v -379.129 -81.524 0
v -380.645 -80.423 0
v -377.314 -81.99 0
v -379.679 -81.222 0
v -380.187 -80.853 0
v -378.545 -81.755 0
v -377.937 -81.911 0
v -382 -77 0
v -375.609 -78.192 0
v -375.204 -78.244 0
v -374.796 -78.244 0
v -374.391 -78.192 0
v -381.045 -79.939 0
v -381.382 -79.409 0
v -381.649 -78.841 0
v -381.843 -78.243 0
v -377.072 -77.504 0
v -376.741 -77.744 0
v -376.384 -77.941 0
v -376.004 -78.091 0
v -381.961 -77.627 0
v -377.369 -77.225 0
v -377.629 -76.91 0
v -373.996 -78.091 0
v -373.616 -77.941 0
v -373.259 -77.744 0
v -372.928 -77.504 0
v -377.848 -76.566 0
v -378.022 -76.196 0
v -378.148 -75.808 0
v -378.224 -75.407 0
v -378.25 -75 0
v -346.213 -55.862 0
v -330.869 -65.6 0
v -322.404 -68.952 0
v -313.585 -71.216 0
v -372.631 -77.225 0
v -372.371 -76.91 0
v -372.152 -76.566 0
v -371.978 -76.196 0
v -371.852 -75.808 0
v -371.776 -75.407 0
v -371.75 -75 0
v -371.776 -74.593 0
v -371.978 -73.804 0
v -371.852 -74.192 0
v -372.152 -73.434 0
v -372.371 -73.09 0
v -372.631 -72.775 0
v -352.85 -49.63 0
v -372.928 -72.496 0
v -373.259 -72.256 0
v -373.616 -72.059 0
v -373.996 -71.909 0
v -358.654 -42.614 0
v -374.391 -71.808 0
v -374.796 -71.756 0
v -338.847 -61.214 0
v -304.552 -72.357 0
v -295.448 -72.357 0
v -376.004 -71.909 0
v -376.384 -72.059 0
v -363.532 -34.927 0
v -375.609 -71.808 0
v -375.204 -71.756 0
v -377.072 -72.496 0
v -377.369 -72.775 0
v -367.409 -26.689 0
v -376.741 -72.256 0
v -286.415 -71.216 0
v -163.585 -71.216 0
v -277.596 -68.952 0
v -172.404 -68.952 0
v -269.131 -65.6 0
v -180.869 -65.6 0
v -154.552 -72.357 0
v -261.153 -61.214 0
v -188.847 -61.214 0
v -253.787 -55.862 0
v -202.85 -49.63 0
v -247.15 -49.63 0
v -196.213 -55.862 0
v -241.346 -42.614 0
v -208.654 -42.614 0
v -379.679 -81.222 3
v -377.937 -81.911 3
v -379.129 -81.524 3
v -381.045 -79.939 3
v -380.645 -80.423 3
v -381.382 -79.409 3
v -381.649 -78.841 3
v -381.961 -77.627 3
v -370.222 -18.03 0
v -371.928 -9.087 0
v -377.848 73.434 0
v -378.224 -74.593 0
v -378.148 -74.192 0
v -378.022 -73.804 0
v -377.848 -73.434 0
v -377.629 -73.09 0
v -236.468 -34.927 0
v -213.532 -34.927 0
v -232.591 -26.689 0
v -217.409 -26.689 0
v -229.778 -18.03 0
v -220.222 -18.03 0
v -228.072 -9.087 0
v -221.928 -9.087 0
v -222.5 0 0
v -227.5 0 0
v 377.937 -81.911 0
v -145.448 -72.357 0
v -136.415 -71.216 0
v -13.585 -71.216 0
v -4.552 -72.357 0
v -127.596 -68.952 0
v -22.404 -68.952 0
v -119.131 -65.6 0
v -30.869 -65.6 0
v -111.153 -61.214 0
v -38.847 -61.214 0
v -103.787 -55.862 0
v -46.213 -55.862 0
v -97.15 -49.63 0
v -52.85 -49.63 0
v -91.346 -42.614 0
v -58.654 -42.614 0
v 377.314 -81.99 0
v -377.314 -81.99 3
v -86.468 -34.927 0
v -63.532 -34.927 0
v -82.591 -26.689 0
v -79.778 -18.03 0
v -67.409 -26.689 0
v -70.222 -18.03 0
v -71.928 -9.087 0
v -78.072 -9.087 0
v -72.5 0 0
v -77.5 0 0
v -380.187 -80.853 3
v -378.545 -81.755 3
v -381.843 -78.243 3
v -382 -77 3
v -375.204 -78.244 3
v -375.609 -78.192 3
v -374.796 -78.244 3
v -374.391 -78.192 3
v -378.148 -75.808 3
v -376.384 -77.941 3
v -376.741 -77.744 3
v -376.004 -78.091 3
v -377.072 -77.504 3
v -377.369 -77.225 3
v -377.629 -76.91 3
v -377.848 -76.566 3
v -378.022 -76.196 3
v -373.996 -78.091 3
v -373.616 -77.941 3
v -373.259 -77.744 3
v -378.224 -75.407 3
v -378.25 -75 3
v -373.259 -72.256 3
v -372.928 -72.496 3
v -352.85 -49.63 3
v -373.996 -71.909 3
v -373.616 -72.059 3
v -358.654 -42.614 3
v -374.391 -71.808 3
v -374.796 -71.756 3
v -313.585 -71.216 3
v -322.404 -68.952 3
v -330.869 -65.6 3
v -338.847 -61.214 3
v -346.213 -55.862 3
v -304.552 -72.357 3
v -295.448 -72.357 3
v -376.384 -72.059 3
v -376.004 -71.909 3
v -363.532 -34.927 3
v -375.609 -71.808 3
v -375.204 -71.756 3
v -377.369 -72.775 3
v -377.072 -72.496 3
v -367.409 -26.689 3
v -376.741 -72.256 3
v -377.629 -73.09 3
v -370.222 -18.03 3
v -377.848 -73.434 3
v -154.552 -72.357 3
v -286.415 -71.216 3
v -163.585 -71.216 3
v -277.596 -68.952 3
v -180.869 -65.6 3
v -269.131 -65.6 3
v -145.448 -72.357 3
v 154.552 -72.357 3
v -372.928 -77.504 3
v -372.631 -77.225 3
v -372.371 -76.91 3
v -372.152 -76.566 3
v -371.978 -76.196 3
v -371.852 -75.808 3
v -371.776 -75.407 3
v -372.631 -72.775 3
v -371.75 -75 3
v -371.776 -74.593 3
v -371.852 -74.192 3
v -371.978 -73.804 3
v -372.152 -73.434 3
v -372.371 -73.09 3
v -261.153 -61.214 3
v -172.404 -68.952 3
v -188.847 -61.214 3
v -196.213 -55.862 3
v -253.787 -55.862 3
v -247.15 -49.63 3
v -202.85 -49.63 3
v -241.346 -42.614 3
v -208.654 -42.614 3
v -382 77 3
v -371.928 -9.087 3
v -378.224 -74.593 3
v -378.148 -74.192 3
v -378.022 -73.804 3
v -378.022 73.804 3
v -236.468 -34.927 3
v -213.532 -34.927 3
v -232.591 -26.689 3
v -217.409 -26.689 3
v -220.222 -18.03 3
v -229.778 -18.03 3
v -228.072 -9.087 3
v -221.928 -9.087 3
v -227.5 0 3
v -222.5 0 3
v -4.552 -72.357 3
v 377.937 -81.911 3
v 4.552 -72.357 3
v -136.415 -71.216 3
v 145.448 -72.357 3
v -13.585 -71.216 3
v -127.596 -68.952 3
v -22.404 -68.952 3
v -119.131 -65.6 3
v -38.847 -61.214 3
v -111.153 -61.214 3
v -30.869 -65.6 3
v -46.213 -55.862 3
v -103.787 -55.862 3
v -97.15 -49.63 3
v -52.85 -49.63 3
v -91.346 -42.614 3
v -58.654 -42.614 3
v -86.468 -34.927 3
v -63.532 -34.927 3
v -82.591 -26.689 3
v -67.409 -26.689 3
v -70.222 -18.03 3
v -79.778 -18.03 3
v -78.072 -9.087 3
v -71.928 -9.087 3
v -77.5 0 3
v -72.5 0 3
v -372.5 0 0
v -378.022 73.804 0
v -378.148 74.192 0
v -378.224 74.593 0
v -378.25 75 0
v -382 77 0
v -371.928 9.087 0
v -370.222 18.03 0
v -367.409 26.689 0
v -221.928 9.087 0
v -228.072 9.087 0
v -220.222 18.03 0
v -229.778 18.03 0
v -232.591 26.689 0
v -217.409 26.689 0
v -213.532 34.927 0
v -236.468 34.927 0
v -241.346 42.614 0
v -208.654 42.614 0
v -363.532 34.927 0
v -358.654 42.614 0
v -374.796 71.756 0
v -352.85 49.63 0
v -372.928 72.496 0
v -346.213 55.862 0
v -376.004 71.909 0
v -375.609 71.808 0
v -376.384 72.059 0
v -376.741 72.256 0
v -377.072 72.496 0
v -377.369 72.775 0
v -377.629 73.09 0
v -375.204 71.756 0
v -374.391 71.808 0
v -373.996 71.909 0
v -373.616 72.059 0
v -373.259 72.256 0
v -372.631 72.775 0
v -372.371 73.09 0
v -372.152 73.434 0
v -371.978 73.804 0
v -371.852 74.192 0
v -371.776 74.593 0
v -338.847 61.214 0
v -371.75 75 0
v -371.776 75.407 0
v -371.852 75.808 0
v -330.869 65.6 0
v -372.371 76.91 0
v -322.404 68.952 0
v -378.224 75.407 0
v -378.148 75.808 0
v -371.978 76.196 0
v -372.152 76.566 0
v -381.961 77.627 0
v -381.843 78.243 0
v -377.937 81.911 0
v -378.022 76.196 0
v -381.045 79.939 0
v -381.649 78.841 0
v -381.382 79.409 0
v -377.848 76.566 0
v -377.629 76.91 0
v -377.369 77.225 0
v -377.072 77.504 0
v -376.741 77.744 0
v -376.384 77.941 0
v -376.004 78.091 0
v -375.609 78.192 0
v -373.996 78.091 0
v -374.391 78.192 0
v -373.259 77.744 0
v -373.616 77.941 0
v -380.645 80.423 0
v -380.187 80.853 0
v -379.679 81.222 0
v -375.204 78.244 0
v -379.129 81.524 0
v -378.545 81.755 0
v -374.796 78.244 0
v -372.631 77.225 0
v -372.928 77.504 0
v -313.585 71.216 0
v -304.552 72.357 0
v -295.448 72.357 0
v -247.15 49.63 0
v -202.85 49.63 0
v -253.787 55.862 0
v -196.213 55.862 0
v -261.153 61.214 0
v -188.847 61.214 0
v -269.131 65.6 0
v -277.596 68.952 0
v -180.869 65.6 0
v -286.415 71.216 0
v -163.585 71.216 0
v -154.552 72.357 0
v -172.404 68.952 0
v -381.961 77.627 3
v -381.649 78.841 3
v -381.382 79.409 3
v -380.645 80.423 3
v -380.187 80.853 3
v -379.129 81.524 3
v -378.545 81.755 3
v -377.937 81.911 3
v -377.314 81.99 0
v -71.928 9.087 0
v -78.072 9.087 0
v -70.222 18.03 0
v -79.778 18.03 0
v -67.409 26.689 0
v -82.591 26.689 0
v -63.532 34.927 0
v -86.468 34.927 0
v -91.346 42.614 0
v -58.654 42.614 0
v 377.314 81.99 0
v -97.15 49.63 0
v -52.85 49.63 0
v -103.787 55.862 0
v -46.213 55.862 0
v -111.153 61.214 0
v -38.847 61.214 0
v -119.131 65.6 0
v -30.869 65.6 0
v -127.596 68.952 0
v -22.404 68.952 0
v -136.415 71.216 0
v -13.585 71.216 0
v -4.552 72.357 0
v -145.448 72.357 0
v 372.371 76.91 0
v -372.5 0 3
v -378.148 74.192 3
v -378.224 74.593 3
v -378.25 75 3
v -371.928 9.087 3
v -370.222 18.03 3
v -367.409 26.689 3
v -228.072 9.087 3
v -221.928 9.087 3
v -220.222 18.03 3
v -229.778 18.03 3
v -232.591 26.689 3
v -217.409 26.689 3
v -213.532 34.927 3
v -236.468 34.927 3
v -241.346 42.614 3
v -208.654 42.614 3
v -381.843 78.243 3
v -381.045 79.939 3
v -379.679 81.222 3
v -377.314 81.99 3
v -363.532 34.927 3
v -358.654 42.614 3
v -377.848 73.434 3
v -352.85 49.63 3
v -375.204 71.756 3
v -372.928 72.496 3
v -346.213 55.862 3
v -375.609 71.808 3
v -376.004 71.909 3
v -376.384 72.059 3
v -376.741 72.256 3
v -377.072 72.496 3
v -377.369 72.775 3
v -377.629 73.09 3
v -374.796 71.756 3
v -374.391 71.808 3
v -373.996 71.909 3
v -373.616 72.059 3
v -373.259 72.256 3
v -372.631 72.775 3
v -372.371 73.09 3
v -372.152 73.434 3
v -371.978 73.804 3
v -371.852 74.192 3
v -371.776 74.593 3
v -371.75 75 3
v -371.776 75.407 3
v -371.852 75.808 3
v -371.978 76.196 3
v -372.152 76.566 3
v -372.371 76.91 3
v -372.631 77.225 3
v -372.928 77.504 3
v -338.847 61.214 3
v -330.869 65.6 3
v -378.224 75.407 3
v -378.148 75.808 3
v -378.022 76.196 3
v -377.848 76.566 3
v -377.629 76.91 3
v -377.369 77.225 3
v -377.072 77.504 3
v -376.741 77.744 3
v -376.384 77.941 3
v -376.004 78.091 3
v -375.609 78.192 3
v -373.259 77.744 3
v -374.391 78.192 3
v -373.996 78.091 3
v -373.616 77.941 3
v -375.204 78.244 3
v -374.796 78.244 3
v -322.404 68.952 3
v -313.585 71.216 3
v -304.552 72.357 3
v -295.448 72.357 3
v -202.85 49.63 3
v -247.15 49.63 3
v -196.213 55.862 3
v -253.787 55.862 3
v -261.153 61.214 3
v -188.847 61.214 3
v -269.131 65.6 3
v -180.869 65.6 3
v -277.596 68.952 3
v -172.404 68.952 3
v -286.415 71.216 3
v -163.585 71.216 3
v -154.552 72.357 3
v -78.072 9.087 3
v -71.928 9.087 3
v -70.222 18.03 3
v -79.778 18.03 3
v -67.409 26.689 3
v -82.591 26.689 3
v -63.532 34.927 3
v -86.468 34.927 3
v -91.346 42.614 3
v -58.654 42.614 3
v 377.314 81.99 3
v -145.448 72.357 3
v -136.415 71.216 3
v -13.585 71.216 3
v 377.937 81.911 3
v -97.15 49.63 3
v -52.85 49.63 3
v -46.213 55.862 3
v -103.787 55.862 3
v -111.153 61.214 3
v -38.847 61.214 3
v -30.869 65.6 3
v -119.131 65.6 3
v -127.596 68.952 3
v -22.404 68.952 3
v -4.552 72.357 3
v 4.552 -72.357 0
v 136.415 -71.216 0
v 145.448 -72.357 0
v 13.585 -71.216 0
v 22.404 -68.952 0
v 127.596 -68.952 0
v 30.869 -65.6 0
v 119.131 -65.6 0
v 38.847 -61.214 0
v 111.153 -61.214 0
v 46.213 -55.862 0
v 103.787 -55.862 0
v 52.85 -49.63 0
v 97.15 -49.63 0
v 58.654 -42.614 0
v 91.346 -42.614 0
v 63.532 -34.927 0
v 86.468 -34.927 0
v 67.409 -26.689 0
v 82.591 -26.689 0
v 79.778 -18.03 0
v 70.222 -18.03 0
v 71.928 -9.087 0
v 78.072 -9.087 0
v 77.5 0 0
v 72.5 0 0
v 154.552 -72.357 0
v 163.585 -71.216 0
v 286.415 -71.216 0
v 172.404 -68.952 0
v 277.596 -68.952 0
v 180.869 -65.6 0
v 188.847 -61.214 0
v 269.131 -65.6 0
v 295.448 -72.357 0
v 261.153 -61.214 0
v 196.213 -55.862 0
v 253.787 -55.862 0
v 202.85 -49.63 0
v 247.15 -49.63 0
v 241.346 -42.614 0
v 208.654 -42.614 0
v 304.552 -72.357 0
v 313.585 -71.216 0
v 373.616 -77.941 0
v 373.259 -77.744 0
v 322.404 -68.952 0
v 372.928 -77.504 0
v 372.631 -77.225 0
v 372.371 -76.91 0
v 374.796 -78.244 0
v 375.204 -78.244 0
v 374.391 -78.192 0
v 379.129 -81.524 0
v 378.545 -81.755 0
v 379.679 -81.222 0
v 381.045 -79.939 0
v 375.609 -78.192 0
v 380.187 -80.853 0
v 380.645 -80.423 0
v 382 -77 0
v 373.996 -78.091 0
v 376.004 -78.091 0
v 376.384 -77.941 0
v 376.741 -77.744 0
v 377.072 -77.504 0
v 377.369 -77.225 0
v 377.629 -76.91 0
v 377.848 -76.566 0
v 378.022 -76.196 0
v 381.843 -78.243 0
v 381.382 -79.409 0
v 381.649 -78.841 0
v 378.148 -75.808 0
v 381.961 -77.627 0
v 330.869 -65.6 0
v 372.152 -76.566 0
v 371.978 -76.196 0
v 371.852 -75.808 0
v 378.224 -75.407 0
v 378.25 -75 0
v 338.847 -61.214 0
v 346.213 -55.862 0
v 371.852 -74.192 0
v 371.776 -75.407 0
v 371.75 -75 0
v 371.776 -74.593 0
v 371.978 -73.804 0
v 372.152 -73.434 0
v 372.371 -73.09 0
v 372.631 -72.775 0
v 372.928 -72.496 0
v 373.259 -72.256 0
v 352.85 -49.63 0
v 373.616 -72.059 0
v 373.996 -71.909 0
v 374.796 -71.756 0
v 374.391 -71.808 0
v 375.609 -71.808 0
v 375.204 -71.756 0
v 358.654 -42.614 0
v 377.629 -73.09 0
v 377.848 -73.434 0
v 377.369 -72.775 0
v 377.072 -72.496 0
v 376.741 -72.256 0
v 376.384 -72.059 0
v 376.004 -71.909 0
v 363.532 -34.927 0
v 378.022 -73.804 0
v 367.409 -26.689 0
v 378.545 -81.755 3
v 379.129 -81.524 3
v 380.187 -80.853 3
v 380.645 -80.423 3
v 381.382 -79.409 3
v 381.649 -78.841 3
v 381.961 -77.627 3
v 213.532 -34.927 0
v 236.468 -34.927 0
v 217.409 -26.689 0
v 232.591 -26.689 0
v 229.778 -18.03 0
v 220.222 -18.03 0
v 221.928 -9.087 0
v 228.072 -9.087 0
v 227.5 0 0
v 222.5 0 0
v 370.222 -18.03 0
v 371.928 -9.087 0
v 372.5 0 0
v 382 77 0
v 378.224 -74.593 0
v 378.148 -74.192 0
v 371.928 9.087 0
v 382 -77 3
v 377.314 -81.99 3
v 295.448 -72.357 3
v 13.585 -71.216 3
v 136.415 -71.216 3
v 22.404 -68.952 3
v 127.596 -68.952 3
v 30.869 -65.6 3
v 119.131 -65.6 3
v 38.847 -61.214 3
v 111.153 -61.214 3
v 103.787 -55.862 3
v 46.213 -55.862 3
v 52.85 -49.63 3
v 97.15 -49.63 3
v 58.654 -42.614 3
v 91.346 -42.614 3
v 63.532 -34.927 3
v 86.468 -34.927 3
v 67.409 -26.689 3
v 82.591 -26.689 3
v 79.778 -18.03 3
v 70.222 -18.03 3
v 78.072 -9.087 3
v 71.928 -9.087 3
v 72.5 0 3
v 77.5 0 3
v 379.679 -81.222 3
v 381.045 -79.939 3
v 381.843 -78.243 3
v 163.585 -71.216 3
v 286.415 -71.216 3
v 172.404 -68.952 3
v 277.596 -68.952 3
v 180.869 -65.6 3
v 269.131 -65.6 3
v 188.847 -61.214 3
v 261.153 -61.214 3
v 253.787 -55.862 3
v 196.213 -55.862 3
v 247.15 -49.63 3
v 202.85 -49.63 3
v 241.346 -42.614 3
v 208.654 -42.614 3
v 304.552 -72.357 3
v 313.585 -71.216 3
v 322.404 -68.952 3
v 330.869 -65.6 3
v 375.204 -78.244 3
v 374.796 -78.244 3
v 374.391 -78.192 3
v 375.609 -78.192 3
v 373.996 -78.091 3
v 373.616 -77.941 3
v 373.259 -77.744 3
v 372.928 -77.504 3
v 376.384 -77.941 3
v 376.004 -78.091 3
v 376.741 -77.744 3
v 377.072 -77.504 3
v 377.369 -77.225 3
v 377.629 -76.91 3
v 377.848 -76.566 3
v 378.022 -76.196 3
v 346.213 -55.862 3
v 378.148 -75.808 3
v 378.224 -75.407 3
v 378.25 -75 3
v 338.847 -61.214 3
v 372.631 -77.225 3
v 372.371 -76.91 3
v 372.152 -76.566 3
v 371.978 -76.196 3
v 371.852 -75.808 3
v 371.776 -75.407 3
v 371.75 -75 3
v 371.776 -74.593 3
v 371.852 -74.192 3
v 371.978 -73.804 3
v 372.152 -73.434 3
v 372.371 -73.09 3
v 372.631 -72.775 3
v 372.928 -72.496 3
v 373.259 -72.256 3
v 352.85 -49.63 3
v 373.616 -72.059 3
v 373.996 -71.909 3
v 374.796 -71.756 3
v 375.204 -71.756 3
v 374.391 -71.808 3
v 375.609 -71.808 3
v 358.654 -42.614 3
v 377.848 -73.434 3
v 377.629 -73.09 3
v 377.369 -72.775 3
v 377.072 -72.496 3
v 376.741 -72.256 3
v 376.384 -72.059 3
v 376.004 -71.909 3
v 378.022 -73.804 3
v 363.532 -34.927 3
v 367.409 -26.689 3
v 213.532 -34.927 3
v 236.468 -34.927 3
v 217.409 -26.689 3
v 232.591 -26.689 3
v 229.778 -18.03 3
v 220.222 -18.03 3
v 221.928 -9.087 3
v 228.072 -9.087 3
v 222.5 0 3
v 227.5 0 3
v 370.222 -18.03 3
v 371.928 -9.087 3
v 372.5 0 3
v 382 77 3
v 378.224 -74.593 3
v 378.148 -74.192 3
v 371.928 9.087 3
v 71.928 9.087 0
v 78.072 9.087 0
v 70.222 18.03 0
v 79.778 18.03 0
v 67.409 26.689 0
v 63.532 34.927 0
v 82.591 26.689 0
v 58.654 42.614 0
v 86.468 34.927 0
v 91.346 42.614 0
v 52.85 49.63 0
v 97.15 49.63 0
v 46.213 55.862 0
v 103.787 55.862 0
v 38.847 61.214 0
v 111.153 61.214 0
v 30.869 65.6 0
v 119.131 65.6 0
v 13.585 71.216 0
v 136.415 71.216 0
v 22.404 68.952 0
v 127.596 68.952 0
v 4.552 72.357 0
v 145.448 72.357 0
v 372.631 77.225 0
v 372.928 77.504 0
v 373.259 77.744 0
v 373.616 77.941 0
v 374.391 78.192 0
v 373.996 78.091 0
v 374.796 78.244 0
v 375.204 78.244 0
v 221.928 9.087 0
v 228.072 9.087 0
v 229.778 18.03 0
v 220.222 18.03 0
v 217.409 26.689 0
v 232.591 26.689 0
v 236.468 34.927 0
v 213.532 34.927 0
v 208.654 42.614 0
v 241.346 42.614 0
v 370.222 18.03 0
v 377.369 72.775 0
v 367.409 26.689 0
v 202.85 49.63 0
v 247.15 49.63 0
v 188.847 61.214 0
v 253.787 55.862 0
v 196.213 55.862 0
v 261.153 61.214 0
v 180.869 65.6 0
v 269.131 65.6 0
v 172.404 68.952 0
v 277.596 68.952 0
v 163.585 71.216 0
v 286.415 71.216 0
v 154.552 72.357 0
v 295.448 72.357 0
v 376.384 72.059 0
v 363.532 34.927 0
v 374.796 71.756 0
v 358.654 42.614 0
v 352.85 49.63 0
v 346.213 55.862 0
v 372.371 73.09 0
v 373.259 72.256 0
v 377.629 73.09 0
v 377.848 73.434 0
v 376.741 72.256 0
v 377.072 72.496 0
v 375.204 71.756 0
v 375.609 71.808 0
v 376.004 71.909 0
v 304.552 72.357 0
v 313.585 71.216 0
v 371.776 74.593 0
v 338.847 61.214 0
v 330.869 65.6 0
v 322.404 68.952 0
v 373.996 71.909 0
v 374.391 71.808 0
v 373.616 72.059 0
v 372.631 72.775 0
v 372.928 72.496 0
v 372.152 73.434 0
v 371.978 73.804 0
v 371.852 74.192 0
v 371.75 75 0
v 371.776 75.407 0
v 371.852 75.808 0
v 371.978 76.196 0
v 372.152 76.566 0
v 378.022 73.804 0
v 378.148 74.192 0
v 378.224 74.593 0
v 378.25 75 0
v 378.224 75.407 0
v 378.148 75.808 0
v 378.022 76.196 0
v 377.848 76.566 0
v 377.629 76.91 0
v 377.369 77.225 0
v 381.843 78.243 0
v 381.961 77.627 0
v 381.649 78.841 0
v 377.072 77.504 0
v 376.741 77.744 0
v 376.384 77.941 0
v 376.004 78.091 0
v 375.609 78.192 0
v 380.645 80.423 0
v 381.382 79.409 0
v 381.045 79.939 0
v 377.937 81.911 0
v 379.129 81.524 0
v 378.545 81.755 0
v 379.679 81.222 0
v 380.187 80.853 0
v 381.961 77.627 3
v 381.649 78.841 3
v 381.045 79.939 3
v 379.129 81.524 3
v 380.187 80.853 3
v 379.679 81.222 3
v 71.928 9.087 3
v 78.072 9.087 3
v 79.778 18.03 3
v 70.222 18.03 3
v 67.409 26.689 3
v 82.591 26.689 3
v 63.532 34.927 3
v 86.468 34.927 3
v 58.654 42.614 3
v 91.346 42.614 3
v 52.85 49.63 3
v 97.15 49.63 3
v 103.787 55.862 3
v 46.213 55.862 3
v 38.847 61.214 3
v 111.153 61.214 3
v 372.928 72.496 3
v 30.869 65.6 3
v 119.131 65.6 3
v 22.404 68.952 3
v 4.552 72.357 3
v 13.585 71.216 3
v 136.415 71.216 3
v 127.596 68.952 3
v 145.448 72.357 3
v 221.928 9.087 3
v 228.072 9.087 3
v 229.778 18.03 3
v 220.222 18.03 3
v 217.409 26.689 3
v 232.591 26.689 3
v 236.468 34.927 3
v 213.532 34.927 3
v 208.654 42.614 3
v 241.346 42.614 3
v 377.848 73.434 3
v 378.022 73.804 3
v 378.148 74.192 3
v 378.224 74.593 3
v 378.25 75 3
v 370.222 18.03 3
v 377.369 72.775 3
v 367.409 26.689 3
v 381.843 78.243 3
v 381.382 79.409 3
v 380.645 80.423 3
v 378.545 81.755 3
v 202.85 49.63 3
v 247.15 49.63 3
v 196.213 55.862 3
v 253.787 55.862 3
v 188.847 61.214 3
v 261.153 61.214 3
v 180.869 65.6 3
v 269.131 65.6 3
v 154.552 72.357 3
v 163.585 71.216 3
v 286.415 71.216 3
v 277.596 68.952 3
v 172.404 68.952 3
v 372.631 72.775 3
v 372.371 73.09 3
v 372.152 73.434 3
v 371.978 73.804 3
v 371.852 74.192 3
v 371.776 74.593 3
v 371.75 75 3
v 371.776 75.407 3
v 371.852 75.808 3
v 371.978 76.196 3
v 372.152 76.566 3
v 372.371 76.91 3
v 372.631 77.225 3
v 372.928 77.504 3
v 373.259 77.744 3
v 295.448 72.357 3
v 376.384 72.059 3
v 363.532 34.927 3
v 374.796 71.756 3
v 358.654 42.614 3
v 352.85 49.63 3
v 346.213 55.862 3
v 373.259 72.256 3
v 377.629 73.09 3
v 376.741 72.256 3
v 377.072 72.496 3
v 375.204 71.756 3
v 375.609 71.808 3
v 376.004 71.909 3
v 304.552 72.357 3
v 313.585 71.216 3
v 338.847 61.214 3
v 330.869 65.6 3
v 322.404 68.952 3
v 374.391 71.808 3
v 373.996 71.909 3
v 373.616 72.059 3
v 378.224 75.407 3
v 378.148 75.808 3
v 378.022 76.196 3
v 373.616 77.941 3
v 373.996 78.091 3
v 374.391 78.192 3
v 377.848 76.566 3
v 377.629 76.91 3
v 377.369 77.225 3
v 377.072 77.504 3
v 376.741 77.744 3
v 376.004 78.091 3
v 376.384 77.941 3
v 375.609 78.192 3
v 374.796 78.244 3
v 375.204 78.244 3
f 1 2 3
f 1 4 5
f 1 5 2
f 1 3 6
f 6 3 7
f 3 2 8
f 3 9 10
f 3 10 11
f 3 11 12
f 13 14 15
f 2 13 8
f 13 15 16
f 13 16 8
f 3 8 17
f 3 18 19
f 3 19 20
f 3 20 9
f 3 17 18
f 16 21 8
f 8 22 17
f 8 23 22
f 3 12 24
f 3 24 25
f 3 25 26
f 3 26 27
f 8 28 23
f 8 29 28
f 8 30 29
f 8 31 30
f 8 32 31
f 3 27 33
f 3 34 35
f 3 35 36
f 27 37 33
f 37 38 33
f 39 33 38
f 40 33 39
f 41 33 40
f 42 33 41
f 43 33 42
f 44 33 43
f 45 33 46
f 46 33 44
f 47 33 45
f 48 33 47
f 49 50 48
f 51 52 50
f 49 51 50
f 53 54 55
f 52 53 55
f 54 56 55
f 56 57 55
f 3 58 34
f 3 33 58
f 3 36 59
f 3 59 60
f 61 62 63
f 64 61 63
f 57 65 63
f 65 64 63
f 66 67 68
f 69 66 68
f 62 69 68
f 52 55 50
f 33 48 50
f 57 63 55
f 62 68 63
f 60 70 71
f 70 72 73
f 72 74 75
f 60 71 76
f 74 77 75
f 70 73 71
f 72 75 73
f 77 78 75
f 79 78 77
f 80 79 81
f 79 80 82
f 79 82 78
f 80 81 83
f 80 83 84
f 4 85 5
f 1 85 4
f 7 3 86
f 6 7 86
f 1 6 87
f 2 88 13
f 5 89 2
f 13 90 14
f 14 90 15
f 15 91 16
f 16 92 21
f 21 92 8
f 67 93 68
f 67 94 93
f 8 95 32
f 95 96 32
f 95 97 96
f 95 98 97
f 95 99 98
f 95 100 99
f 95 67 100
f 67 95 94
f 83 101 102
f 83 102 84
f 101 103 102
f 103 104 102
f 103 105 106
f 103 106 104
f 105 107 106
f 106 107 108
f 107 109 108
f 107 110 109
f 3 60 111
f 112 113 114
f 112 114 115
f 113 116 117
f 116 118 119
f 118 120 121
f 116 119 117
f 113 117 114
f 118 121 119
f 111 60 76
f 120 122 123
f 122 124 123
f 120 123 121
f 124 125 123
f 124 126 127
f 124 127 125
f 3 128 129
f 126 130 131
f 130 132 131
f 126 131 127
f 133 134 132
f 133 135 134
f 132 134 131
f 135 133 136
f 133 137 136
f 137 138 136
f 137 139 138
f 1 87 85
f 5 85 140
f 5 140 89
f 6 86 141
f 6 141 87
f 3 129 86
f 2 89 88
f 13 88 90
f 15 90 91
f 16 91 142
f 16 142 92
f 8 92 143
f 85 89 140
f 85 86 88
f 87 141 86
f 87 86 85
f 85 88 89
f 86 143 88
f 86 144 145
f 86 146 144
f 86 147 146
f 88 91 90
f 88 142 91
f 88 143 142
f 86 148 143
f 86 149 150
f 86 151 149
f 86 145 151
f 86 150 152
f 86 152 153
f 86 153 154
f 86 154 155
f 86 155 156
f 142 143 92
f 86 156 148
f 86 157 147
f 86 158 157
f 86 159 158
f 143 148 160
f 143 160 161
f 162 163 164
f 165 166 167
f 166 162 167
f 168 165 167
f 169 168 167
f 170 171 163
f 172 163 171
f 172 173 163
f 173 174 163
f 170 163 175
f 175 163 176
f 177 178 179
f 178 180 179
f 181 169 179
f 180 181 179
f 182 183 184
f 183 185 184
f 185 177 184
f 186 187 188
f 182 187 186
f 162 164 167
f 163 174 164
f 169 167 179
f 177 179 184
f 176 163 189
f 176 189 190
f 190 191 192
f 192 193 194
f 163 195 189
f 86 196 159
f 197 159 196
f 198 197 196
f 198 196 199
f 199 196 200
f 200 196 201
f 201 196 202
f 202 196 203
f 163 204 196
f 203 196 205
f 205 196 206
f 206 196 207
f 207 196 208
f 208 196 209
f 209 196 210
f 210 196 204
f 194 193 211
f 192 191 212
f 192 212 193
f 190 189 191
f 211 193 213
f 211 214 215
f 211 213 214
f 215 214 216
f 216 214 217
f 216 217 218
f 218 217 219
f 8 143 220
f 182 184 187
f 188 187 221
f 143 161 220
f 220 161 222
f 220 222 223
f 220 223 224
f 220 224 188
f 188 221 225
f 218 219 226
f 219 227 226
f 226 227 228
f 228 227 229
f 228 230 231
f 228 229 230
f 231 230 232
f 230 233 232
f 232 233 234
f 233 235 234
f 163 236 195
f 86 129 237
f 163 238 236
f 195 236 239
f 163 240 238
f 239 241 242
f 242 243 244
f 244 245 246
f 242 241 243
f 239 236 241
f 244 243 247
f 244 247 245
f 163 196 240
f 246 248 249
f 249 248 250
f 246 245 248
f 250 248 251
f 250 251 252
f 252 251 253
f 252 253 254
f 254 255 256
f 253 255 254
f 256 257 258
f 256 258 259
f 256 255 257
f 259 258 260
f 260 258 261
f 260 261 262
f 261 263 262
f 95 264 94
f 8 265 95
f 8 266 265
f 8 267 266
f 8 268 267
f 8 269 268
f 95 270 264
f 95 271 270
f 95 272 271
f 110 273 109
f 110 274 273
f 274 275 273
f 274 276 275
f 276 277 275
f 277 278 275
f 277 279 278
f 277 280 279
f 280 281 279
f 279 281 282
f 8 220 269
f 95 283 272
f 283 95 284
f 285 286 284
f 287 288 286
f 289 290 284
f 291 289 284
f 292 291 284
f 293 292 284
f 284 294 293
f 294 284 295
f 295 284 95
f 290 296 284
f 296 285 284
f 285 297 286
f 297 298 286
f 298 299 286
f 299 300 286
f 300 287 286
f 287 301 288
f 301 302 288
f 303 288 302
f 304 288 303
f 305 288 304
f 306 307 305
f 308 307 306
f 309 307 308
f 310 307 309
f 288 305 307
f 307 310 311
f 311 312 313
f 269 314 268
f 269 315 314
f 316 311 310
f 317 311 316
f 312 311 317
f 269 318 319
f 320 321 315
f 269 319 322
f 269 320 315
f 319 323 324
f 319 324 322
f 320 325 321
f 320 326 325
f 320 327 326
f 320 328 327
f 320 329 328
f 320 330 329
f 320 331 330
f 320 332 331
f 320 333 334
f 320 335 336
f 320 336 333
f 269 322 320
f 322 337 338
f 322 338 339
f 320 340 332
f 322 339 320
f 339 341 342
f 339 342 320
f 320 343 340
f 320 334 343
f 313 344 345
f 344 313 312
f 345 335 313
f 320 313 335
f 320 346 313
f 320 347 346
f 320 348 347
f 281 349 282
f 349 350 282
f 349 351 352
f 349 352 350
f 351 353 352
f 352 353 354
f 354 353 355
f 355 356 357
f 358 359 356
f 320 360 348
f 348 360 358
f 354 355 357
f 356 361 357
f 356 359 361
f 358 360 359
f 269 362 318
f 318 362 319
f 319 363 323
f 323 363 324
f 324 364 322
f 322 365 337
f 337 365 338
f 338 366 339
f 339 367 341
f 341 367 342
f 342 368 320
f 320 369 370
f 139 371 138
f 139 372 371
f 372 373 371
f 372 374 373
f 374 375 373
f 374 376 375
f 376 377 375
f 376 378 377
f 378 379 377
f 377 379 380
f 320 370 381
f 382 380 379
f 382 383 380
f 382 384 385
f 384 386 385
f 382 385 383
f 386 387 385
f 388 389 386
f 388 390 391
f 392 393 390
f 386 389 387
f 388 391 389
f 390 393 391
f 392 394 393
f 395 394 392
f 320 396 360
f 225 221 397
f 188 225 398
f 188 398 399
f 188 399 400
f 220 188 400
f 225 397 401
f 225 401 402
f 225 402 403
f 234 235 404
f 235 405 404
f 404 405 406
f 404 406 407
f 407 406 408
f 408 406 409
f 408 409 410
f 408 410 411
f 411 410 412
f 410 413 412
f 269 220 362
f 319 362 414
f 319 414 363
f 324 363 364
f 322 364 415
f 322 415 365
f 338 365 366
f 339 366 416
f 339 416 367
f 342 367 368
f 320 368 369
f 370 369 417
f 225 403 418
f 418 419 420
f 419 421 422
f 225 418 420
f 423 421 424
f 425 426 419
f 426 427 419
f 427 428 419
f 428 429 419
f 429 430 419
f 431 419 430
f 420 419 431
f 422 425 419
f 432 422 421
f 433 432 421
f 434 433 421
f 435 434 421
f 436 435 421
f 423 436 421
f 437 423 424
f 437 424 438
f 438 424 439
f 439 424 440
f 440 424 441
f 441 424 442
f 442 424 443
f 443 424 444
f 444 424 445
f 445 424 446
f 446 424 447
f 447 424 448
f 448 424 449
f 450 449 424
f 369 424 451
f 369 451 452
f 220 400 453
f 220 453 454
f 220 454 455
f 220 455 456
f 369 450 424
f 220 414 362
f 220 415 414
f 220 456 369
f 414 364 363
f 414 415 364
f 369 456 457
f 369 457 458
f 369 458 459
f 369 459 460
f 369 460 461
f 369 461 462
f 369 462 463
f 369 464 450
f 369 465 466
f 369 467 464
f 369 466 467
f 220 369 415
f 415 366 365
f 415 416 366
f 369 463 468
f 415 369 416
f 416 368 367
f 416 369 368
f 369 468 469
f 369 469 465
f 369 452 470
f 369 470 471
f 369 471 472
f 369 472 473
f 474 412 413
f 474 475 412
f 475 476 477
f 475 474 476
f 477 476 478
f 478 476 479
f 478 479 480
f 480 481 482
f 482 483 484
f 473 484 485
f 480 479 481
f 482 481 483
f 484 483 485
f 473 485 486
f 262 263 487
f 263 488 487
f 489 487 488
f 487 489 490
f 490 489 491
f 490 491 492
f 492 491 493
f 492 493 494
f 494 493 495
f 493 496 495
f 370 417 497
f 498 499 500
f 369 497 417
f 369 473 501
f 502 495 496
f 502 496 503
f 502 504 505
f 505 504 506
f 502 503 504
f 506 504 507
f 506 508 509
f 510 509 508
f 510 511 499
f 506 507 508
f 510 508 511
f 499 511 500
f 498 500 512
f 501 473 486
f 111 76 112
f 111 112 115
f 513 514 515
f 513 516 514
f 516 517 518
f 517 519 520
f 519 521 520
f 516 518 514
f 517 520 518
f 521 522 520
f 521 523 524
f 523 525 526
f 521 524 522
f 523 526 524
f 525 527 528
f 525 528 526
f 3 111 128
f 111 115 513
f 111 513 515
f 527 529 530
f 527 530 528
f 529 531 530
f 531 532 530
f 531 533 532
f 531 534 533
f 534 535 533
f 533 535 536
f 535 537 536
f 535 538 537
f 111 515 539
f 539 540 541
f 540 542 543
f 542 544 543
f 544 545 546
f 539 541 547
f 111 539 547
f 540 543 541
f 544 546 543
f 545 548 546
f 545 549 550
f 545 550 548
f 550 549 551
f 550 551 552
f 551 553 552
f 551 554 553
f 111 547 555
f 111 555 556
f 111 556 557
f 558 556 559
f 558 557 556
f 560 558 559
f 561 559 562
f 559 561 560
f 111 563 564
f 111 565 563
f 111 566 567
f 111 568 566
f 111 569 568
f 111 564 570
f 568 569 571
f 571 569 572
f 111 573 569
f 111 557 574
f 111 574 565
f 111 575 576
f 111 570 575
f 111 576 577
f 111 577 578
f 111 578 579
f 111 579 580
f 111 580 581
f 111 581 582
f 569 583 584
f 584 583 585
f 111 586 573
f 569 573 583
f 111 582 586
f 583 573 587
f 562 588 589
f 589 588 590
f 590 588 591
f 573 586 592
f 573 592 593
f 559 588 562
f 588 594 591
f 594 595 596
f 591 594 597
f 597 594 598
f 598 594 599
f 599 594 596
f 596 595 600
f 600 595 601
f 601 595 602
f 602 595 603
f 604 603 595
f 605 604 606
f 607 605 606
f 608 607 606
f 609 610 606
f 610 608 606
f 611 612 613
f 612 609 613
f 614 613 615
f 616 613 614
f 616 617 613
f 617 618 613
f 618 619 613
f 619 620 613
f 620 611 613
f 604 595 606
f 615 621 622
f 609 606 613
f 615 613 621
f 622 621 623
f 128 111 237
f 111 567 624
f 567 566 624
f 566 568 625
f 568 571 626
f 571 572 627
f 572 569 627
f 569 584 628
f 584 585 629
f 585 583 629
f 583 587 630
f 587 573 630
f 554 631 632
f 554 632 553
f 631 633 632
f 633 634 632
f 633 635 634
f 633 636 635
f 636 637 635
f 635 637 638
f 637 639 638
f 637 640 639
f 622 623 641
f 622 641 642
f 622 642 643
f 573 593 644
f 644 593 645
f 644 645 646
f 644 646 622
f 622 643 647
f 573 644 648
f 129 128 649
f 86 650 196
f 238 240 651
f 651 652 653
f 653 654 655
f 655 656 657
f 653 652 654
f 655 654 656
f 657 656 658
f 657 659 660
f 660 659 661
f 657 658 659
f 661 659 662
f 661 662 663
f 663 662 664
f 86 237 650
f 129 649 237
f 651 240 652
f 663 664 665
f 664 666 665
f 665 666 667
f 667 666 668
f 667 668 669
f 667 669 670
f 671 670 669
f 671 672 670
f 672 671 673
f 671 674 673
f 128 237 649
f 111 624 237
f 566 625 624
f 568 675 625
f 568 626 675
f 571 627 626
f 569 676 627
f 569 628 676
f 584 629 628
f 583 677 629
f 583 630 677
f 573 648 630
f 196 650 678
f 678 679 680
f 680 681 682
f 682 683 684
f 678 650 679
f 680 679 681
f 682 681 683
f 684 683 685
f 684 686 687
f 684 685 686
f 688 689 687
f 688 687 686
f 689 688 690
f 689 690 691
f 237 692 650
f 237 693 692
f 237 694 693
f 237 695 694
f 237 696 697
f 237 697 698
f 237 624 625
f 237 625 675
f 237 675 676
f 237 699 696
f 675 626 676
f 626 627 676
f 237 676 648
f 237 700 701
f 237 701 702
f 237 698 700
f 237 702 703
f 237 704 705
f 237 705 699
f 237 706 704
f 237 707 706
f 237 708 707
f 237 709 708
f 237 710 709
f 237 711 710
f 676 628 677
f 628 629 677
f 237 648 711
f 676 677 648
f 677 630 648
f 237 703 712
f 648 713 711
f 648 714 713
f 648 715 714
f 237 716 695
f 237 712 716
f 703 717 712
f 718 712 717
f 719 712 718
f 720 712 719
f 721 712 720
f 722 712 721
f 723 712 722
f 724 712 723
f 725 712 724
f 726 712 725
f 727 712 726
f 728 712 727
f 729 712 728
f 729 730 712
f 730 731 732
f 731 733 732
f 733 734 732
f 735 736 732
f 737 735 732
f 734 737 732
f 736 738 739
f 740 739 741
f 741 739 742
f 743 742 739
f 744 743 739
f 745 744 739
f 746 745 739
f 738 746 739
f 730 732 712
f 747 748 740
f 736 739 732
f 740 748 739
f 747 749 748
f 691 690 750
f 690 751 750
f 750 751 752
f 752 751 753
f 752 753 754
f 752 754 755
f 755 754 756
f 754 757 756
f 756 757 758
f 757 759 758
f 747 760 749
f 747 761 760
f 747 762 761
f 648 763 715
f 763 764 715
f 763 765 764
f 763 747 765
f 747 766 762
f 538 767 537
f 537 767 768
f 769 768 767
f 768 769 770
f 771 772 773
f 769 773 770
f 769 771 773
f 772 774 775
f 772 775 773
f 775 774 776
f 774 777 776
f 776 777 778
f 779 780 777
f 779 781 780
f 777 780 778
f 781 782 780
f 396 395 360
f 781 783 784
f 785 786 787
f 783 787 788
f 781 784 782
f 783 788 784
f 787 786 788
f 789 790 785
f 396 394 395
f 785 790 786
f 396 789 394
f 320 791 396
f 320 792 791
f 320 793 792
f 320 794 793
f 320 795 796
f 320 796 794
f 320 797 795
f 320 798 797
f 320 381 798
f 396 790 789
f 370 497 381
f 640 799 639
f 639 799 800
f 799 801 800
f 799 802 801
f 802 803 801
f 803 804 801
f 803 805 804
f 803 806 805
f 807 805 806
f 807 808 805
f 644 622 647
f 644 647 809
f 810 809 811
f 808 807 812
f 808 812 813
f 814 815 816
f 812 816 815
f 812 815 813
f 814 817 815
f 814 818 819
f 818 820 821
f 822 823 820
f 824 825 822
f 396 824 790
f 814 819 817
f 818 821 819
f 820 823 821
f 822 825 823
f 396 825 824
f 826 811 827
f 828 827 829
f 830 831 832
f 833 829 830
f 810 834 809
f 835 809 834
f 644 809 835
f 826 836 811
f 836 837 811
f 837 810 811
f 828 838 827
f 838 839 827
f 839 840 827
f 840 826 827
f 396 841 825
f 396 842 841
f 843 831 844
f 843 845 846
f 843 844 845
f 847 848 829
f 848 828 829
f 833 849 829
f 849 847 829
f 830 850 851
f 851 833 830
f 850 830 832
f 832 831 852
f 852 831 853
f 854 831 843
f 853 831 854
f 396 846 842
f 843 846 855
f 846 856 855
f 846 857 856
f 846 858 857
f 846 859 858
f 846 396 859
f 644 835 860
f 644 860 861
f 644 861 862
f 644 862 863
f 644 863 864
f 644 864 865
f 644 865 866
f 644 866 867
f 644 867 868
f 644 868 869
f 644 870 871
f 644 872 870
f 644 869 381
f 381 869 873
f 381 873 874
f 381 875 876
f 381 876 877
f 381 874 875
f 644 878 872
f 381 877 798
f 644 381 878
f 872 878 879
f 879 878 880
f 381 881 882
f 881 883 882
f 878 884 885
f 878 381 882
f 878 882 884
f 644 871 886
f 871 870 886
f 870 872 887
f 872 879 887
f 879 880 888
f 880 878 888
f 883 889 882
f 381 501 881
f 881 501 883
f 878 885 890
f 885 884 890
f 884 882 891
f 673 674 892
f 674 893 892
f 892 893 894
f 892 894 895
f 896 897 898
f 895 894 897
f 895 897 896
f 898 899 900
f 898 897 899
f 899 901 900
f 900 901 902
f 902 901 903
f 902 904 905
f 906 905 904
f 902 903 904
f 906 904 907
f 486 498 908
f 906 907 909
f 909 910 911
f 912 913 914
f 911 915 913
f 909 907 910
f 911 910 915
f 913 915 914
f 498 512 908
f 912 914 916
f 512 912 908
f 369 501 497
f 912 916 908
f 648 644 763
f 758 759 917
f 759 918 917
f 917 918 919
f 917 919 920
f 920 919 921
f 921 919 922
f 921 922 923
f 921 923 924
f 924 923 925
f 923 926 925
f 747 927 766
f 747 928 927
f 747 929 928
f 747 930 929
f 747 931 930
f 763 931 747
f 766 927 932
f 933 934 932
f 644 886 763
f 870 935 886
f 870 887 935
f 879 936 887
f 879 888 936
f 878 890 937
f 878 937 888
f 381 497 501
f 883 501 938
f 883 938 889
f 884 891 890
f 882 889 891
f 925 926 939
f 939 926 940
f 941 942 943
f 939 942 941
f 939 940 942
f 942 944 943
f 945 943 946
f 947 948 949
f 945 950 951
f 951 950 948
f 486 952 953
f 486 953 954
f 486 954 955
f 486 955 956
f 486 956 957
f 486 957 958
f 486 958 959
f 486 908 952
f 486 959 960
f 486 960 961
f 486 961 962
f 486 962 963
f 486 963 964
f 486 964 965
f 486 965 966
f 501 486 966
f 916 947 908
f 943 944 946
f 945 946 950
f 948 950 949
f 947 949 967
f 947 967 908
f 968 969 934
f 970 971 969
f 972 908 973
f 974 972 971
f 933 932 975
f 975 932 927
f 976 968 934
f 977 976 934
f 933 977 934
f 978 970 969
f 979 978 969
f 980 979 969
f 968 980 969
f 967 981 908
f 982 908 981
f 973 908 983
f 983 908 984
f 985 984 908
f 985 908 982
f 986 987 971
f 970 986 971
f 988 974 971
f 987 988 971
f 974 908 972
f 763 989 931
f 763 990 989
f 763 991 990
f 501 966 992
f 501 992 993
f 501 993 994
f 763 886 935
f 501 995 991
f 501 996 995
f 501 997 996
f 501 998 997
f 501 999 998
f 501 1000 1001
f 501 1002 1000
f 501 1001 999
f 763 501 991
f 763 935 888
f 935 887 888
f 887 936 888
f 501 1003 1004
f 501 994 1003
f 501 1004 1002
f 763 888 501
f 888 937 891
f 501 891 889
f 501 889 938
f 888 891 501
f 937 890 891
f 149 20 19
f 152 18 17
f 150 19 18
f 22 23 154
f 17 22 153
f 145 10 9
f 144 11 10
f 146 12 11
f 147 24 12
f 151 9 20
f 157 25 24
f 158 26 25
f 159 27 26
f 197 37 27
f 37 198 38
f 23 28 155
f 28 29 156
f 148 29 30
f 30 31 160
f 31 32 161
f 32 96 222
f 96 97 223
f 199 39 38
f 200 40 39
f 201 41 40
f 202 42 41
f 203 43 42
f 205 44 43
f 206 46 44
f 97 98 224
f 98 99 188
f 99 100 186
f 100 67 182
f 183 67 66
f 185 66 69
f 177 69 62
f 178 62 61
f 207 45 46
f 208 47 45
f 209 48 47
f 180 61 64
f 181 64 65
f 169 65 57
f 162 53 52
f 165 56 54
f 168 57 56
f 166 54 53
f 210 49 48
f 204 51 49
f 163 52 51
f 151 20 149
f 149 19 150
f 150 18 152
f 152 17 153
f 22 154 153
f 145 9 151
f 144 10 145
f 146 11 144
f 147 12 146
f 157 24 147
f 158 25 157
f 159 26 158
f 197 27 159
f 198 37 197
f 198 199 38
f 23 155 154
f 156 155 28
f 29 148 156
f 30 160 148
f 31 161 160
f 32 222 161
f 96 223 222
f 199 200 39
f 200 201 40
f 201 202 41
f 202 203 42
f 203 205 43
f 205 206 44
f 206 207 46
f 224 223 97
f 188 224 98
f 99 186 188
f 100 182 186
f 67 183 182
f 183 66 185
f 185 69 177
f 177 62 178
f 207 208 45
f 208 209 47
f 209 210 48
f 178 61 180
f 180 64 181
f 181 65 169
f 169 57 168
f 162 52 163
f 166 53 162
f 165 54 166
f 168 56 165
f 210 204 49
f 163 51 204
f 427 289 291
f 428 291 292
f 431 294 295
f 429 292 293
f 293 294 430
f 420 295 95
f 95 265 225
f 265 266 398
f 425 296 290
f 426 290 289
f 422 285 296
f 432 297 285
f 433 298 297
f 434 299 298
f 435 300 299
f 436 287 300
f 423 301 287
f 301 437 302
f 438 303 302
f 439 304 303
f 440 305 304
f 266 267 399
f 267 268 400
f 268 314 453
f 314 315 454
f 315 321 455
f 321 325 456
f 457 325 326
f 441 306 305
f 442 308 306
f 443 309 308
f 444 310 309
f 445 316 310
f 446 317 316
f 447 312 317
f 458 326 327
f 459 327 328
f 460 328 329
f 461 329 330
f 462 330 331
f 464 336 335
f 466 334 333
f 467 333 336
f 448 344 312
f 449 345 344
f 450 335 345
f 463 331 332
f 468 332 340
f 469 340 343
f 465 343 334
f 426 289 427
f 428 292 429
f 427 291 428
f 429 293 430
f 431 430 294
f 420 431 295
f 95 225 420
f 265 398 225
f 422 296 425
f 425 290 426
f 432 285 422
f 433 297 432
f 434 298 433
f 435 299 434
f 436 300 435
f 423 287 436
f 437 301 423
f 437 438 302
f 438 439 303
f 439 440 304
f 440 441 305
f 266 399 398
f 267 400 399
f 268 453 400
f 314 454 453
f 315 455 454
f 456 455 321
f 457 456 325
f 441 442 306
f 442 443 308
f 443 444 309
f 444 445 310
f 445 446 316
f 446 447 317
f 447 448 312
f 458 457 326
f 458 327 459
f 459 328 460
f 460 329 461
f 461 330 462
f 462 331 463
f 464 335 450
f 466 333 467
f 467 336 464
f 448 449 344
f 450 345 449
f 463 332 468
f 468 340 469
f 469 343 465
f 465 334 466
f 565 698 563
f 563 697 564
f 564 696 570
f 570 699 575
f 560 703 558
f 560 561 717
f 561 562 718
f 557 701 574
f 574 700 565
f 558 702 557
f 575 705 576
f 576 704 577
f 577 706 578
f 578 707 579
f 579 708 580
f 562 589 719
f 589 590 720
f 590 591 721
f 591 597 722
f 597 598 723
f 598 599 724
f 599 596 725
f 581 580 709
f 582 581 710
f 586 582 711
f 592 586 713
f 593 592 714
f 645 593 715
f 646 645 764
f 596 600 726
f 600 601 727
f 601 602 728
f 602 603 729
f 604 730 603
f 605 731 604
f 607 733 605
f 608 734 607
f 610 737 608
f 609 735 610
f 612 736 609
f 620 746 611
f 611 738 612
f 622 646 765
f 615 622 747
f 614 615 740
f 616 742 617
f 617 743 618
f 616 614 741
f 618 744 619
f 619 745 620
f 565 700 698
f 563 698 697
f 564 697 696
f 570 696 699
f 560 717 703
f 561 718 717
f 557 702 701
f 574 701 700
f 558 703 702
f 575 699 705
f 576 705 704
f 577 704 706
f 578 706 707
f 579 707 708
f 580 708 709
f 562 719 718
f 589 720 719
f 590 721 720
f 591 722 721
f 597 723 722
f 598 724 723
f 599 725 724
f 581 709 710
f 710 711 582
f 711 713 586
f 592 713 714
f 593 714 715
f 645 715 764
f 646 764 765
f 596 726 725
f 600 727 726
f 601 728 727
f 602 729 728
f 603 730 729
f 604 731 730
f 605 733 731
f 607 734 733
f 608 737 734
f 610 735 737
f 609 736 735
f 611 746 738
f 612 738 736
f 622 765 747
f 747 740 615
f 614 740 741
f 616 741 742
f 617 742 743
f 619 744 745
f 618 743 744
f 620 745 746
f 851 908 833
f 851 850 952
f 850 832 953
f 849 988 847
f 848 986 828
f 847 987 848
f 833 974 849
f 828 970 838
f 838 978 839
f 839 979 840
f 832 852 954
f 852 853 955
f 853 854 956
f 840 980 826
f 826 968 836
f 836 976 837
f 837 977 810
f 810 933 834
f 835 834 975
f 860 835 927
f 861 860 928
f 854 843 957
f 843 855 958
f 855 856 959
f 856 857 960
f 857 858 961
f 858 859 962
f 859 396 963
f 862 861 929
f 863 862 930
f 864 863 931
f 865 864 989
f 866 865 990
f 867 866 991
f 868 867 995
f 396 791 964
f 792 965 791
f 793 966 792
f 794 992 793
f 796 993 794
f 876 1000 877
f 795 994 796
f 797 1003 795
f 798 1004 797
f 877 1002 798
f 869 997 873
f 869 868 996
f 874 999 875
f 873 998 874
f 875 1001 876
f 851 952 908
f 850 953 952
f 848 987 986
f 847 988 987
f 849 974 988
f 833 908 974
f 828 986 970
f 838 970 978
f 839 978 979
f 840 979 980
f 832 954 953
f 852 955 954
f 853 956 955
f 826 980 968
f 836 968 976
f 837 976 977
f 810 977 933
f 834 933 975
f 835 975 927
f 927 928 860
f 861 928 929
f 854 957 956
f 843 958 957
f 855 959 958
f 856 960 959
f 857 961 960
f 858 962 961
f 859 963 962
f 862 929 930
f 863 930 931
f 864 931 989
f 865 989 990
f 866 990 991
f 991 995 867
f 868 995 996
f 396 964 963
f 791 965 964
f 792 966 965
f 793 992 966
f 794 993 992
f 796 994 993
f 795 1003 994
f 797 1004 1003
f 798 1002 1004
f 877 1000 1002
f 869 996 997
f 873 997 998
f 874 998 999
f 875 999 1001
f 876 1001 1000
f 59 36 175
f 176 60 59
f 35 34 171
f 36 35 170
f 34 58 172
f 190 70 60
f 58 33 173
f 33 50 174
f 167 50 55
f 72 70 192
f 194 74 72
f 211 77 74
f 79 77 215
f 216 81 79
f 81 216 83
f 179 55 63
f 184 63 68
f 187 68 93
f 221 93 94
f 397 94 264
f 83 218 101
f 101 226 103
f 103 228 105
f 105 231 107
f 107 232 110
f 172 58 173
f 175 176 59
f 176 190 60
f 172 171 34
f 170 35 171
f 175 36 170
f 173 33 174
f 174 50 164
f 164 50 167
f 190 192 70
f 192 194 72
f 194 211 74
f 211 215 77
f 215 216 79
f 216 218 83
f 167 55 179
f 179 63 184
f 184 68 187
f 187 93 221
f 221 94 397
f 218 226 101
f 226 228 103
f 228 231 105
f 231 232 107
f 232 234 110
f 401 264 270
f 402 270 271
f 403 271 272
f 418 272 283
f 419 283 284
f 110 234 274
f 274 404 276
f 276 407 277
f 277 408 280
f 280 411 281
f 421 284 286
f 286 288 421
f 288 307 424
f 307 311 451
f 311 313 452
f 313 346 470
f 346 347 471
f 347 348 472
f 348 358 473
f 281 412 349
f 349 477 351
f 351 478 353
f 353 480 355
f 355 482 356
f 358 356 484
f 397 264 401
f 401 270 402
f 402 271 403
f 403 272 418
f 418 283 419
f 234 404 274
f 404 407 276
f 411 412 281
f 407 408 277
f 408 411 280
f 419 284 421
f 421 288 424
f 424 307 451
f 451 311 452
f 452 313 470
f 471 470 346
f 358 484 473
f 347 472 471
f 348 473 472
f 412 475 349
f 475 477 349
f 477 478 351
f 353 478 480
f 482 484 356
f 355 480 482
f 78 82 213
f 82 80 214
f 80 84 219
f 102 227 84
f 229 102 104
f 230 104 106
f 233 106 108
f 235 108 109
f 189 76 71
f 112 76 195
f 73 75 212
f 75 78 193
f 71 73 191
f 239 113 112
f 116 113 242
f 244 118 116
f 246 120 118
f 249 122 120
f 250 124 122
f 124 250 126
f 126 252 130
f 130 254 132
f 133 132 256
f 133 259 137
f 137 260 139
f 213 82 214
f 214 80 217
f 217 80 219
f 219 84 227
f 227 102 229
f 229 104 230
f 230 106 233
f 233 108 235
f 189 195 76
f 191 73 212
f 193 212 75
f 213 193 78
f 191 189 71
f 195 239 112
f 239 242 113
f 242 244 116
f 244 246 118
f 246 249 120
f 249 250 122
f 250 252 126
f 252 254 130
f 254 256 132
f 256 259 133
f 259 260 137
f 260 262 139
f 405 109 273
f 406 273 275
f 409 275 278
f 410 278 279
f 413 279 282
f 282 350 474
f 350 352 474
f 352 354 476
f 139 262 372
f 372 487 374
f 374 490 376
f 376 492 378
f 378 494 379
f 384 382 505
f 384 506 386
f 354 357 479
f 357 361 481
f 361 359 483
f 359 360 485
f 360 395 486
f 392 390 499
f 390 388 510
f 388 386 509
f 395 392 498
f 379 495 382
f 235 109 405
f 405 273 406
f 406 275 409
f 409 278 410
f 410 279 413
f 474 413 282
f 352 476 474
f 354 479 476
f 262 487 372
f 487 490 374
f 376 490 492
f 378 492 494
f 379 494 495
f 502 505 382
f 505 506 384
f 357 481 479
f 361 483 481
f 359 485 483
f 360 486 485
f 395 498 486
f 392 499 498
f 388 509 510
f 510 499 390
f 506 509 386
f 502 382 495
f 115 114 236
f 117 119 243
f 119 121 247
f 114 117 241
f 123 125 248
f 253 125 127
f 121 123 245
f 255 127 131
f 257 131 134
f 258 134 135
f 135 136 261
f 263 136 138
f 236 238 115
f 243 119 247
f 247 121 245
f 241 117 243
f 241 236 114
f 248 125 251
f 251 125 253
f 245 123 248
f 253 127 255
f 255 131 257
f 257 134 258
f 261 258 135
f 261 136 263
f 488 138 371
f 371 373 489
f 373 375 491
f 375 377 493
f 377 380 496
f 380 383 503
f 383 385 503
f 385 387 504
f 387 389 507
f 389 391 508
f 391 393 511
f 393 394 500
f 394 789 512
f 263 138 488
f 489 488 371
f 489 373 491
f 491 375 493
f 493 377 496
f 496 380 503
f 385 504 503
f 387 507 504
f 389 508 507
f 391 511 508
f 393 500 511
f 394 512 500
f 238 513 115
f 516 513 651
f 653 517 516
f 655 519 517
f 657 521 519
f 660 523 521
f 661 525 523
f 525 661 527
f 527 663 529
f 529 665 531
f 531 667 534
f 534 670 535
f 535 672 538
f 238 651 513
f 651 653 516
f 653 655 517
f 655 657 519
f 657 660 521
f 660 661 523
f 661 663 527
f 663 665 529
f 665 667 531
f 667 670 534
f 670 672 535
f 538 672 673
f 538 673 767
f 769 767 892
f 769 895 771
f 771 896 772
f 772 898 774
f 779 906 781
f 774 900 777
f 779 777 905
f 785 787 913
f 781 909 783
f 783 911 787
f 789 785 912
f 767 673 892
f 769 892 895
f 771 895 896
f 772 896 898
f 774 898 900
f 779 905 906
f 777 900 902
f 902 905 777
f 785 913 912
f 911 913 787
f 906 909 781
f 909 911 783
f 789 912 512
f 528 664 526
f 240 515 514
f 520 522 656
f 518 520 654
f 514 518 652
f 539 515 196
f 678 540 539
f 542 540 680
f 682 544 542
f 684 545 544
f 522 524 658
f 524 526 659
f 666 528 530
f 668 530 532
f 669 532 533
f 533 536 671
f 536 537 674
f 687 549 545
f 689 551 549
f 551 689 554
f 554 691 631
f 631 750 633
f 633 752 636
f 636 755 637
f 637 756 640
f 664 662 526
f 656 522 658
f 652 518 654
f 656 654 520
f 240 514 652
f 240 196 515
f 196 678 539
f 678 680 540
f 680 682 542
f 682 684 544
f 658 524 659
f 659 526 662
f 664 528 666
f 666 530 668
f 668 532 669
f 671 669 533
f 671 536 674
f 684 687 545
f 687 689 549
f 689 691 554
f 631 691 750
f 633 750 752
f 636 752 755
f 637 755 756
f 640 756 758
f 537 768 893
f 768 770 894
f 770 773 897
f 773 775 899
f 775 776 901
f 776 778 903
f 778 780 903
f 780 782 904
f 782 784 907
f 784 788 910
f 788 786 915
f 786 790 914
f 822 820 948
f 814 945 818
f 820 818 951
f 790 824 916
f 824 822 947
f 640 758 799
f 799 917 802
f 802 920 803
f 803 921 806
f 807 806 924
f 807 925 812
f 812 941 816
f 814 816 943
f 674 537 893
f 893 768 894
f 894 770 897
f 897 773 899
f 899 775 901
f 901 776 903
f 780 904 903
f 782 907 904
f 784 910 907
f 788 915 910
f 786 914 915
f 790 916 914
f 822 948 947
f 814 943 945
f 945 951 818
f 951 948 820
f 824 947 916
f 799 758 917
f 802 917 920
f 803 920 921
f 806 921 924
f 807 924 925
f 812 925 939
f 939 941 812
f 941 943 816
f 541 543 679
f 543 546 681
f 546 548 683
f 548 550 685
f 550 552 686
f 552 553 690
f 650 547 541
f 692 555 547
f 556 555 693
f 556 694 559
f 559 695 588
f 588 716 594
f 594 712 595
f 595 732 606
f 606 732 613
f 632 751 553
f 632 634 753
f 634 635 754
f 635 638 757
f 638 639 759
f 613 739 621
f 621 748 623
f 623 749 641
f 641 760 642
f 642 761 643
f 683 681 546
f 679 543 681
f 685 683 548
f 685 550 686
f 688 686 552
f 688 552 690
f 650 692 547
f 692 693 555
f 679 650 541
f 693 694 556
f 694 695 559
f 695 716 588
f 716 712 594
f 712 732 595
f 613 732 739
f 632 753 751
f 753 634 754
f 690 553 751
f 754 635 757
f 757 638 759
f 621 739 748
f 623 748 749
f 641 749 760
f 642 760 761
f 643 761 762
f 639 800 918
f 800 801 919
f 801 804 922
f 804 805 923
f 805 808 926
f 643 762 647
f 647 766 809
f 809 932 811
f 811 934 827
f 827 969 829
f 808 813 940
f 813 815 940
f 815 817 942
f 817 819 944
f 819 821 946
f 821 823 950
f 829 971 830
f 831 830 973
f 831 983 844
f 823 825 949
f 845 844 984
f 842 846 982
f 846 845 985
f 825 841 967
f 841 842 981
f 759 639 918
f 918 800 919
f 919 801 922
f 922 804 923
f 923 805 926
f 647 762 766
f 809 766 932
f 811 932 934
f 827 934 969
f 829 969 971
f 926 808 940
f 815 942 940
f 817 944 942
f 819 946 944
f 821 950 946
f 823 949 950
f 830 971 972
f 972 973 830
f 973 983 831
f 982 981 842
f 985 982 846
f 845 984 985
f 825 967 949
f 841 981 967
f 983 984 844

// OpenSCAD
$fn = 50;

difference() {
	union() {
		hull() {
			translate(v = [-377.0, 77.0, 0]) {
				cylinder(h = 3, r = 5);
			}
			translate(v = [377.0, 77.0, 0]) {
				cylinder(h = 3, r = 5);
			}
			translate(v = [-377.0, -77.0, 0]) {
				cylinder(h = 3, r = 5);
			}
			translate(v = [377.0, -77.0, 0]) {
				cylinder(h = 3, r = 5);
			}
		}
	}
	union() {
		translate(v = [-375.0, -75.0, -100.0]) {
			cylinder(h = 200, r = 3.25);
		}
		translate(v = [-375.0, 75.0, -100.0]) {
			cylinder(h = 200, r = 3.25);
		}
		translate(v = [375.0, -75.0, -100.0]) {
			cylinder(h = 200, r = 3.25);
		}
		translate(v = [375.0, 75.0, -100.0]) {
			cylinder(h = 200, r = 3.25);
		}
		translate(v = [-375.0, -75.0, -100.0]) {
			cylinder(h = 200, r = 1.8);
		}
		translate(v = [-375.0, 75.0, -100.0]) {
			cylinder(h = 200, r = 1.8);
		}
		translate(v = [375.0, -75.0, -100.0]) {
			cylinder(h = 200, r = 1.8);
		}
		translate(v = [375.0, 75.0, -100.0]) {
			cylinder(h = 200, r = 1.8);
		}
		translate(v = [-300.0, 0, 0.0]) {
			cylinder(h = 3, r = 72.5);
		}
		translate(v = [-150.0, 0, 0.0]) {
			cylinder(h = 3, r = 72.5);
		}
		cylinder(h = 3, r = 72.5);
		translate(v = [150.0, 0, 0.0]) {
			cylinder(h = 3, r = 72.5);
		}
		translate(v = [300.0, 0, 0.0]) {
			cylinder(h = 3, r = 72.5);
		}
	}
}
